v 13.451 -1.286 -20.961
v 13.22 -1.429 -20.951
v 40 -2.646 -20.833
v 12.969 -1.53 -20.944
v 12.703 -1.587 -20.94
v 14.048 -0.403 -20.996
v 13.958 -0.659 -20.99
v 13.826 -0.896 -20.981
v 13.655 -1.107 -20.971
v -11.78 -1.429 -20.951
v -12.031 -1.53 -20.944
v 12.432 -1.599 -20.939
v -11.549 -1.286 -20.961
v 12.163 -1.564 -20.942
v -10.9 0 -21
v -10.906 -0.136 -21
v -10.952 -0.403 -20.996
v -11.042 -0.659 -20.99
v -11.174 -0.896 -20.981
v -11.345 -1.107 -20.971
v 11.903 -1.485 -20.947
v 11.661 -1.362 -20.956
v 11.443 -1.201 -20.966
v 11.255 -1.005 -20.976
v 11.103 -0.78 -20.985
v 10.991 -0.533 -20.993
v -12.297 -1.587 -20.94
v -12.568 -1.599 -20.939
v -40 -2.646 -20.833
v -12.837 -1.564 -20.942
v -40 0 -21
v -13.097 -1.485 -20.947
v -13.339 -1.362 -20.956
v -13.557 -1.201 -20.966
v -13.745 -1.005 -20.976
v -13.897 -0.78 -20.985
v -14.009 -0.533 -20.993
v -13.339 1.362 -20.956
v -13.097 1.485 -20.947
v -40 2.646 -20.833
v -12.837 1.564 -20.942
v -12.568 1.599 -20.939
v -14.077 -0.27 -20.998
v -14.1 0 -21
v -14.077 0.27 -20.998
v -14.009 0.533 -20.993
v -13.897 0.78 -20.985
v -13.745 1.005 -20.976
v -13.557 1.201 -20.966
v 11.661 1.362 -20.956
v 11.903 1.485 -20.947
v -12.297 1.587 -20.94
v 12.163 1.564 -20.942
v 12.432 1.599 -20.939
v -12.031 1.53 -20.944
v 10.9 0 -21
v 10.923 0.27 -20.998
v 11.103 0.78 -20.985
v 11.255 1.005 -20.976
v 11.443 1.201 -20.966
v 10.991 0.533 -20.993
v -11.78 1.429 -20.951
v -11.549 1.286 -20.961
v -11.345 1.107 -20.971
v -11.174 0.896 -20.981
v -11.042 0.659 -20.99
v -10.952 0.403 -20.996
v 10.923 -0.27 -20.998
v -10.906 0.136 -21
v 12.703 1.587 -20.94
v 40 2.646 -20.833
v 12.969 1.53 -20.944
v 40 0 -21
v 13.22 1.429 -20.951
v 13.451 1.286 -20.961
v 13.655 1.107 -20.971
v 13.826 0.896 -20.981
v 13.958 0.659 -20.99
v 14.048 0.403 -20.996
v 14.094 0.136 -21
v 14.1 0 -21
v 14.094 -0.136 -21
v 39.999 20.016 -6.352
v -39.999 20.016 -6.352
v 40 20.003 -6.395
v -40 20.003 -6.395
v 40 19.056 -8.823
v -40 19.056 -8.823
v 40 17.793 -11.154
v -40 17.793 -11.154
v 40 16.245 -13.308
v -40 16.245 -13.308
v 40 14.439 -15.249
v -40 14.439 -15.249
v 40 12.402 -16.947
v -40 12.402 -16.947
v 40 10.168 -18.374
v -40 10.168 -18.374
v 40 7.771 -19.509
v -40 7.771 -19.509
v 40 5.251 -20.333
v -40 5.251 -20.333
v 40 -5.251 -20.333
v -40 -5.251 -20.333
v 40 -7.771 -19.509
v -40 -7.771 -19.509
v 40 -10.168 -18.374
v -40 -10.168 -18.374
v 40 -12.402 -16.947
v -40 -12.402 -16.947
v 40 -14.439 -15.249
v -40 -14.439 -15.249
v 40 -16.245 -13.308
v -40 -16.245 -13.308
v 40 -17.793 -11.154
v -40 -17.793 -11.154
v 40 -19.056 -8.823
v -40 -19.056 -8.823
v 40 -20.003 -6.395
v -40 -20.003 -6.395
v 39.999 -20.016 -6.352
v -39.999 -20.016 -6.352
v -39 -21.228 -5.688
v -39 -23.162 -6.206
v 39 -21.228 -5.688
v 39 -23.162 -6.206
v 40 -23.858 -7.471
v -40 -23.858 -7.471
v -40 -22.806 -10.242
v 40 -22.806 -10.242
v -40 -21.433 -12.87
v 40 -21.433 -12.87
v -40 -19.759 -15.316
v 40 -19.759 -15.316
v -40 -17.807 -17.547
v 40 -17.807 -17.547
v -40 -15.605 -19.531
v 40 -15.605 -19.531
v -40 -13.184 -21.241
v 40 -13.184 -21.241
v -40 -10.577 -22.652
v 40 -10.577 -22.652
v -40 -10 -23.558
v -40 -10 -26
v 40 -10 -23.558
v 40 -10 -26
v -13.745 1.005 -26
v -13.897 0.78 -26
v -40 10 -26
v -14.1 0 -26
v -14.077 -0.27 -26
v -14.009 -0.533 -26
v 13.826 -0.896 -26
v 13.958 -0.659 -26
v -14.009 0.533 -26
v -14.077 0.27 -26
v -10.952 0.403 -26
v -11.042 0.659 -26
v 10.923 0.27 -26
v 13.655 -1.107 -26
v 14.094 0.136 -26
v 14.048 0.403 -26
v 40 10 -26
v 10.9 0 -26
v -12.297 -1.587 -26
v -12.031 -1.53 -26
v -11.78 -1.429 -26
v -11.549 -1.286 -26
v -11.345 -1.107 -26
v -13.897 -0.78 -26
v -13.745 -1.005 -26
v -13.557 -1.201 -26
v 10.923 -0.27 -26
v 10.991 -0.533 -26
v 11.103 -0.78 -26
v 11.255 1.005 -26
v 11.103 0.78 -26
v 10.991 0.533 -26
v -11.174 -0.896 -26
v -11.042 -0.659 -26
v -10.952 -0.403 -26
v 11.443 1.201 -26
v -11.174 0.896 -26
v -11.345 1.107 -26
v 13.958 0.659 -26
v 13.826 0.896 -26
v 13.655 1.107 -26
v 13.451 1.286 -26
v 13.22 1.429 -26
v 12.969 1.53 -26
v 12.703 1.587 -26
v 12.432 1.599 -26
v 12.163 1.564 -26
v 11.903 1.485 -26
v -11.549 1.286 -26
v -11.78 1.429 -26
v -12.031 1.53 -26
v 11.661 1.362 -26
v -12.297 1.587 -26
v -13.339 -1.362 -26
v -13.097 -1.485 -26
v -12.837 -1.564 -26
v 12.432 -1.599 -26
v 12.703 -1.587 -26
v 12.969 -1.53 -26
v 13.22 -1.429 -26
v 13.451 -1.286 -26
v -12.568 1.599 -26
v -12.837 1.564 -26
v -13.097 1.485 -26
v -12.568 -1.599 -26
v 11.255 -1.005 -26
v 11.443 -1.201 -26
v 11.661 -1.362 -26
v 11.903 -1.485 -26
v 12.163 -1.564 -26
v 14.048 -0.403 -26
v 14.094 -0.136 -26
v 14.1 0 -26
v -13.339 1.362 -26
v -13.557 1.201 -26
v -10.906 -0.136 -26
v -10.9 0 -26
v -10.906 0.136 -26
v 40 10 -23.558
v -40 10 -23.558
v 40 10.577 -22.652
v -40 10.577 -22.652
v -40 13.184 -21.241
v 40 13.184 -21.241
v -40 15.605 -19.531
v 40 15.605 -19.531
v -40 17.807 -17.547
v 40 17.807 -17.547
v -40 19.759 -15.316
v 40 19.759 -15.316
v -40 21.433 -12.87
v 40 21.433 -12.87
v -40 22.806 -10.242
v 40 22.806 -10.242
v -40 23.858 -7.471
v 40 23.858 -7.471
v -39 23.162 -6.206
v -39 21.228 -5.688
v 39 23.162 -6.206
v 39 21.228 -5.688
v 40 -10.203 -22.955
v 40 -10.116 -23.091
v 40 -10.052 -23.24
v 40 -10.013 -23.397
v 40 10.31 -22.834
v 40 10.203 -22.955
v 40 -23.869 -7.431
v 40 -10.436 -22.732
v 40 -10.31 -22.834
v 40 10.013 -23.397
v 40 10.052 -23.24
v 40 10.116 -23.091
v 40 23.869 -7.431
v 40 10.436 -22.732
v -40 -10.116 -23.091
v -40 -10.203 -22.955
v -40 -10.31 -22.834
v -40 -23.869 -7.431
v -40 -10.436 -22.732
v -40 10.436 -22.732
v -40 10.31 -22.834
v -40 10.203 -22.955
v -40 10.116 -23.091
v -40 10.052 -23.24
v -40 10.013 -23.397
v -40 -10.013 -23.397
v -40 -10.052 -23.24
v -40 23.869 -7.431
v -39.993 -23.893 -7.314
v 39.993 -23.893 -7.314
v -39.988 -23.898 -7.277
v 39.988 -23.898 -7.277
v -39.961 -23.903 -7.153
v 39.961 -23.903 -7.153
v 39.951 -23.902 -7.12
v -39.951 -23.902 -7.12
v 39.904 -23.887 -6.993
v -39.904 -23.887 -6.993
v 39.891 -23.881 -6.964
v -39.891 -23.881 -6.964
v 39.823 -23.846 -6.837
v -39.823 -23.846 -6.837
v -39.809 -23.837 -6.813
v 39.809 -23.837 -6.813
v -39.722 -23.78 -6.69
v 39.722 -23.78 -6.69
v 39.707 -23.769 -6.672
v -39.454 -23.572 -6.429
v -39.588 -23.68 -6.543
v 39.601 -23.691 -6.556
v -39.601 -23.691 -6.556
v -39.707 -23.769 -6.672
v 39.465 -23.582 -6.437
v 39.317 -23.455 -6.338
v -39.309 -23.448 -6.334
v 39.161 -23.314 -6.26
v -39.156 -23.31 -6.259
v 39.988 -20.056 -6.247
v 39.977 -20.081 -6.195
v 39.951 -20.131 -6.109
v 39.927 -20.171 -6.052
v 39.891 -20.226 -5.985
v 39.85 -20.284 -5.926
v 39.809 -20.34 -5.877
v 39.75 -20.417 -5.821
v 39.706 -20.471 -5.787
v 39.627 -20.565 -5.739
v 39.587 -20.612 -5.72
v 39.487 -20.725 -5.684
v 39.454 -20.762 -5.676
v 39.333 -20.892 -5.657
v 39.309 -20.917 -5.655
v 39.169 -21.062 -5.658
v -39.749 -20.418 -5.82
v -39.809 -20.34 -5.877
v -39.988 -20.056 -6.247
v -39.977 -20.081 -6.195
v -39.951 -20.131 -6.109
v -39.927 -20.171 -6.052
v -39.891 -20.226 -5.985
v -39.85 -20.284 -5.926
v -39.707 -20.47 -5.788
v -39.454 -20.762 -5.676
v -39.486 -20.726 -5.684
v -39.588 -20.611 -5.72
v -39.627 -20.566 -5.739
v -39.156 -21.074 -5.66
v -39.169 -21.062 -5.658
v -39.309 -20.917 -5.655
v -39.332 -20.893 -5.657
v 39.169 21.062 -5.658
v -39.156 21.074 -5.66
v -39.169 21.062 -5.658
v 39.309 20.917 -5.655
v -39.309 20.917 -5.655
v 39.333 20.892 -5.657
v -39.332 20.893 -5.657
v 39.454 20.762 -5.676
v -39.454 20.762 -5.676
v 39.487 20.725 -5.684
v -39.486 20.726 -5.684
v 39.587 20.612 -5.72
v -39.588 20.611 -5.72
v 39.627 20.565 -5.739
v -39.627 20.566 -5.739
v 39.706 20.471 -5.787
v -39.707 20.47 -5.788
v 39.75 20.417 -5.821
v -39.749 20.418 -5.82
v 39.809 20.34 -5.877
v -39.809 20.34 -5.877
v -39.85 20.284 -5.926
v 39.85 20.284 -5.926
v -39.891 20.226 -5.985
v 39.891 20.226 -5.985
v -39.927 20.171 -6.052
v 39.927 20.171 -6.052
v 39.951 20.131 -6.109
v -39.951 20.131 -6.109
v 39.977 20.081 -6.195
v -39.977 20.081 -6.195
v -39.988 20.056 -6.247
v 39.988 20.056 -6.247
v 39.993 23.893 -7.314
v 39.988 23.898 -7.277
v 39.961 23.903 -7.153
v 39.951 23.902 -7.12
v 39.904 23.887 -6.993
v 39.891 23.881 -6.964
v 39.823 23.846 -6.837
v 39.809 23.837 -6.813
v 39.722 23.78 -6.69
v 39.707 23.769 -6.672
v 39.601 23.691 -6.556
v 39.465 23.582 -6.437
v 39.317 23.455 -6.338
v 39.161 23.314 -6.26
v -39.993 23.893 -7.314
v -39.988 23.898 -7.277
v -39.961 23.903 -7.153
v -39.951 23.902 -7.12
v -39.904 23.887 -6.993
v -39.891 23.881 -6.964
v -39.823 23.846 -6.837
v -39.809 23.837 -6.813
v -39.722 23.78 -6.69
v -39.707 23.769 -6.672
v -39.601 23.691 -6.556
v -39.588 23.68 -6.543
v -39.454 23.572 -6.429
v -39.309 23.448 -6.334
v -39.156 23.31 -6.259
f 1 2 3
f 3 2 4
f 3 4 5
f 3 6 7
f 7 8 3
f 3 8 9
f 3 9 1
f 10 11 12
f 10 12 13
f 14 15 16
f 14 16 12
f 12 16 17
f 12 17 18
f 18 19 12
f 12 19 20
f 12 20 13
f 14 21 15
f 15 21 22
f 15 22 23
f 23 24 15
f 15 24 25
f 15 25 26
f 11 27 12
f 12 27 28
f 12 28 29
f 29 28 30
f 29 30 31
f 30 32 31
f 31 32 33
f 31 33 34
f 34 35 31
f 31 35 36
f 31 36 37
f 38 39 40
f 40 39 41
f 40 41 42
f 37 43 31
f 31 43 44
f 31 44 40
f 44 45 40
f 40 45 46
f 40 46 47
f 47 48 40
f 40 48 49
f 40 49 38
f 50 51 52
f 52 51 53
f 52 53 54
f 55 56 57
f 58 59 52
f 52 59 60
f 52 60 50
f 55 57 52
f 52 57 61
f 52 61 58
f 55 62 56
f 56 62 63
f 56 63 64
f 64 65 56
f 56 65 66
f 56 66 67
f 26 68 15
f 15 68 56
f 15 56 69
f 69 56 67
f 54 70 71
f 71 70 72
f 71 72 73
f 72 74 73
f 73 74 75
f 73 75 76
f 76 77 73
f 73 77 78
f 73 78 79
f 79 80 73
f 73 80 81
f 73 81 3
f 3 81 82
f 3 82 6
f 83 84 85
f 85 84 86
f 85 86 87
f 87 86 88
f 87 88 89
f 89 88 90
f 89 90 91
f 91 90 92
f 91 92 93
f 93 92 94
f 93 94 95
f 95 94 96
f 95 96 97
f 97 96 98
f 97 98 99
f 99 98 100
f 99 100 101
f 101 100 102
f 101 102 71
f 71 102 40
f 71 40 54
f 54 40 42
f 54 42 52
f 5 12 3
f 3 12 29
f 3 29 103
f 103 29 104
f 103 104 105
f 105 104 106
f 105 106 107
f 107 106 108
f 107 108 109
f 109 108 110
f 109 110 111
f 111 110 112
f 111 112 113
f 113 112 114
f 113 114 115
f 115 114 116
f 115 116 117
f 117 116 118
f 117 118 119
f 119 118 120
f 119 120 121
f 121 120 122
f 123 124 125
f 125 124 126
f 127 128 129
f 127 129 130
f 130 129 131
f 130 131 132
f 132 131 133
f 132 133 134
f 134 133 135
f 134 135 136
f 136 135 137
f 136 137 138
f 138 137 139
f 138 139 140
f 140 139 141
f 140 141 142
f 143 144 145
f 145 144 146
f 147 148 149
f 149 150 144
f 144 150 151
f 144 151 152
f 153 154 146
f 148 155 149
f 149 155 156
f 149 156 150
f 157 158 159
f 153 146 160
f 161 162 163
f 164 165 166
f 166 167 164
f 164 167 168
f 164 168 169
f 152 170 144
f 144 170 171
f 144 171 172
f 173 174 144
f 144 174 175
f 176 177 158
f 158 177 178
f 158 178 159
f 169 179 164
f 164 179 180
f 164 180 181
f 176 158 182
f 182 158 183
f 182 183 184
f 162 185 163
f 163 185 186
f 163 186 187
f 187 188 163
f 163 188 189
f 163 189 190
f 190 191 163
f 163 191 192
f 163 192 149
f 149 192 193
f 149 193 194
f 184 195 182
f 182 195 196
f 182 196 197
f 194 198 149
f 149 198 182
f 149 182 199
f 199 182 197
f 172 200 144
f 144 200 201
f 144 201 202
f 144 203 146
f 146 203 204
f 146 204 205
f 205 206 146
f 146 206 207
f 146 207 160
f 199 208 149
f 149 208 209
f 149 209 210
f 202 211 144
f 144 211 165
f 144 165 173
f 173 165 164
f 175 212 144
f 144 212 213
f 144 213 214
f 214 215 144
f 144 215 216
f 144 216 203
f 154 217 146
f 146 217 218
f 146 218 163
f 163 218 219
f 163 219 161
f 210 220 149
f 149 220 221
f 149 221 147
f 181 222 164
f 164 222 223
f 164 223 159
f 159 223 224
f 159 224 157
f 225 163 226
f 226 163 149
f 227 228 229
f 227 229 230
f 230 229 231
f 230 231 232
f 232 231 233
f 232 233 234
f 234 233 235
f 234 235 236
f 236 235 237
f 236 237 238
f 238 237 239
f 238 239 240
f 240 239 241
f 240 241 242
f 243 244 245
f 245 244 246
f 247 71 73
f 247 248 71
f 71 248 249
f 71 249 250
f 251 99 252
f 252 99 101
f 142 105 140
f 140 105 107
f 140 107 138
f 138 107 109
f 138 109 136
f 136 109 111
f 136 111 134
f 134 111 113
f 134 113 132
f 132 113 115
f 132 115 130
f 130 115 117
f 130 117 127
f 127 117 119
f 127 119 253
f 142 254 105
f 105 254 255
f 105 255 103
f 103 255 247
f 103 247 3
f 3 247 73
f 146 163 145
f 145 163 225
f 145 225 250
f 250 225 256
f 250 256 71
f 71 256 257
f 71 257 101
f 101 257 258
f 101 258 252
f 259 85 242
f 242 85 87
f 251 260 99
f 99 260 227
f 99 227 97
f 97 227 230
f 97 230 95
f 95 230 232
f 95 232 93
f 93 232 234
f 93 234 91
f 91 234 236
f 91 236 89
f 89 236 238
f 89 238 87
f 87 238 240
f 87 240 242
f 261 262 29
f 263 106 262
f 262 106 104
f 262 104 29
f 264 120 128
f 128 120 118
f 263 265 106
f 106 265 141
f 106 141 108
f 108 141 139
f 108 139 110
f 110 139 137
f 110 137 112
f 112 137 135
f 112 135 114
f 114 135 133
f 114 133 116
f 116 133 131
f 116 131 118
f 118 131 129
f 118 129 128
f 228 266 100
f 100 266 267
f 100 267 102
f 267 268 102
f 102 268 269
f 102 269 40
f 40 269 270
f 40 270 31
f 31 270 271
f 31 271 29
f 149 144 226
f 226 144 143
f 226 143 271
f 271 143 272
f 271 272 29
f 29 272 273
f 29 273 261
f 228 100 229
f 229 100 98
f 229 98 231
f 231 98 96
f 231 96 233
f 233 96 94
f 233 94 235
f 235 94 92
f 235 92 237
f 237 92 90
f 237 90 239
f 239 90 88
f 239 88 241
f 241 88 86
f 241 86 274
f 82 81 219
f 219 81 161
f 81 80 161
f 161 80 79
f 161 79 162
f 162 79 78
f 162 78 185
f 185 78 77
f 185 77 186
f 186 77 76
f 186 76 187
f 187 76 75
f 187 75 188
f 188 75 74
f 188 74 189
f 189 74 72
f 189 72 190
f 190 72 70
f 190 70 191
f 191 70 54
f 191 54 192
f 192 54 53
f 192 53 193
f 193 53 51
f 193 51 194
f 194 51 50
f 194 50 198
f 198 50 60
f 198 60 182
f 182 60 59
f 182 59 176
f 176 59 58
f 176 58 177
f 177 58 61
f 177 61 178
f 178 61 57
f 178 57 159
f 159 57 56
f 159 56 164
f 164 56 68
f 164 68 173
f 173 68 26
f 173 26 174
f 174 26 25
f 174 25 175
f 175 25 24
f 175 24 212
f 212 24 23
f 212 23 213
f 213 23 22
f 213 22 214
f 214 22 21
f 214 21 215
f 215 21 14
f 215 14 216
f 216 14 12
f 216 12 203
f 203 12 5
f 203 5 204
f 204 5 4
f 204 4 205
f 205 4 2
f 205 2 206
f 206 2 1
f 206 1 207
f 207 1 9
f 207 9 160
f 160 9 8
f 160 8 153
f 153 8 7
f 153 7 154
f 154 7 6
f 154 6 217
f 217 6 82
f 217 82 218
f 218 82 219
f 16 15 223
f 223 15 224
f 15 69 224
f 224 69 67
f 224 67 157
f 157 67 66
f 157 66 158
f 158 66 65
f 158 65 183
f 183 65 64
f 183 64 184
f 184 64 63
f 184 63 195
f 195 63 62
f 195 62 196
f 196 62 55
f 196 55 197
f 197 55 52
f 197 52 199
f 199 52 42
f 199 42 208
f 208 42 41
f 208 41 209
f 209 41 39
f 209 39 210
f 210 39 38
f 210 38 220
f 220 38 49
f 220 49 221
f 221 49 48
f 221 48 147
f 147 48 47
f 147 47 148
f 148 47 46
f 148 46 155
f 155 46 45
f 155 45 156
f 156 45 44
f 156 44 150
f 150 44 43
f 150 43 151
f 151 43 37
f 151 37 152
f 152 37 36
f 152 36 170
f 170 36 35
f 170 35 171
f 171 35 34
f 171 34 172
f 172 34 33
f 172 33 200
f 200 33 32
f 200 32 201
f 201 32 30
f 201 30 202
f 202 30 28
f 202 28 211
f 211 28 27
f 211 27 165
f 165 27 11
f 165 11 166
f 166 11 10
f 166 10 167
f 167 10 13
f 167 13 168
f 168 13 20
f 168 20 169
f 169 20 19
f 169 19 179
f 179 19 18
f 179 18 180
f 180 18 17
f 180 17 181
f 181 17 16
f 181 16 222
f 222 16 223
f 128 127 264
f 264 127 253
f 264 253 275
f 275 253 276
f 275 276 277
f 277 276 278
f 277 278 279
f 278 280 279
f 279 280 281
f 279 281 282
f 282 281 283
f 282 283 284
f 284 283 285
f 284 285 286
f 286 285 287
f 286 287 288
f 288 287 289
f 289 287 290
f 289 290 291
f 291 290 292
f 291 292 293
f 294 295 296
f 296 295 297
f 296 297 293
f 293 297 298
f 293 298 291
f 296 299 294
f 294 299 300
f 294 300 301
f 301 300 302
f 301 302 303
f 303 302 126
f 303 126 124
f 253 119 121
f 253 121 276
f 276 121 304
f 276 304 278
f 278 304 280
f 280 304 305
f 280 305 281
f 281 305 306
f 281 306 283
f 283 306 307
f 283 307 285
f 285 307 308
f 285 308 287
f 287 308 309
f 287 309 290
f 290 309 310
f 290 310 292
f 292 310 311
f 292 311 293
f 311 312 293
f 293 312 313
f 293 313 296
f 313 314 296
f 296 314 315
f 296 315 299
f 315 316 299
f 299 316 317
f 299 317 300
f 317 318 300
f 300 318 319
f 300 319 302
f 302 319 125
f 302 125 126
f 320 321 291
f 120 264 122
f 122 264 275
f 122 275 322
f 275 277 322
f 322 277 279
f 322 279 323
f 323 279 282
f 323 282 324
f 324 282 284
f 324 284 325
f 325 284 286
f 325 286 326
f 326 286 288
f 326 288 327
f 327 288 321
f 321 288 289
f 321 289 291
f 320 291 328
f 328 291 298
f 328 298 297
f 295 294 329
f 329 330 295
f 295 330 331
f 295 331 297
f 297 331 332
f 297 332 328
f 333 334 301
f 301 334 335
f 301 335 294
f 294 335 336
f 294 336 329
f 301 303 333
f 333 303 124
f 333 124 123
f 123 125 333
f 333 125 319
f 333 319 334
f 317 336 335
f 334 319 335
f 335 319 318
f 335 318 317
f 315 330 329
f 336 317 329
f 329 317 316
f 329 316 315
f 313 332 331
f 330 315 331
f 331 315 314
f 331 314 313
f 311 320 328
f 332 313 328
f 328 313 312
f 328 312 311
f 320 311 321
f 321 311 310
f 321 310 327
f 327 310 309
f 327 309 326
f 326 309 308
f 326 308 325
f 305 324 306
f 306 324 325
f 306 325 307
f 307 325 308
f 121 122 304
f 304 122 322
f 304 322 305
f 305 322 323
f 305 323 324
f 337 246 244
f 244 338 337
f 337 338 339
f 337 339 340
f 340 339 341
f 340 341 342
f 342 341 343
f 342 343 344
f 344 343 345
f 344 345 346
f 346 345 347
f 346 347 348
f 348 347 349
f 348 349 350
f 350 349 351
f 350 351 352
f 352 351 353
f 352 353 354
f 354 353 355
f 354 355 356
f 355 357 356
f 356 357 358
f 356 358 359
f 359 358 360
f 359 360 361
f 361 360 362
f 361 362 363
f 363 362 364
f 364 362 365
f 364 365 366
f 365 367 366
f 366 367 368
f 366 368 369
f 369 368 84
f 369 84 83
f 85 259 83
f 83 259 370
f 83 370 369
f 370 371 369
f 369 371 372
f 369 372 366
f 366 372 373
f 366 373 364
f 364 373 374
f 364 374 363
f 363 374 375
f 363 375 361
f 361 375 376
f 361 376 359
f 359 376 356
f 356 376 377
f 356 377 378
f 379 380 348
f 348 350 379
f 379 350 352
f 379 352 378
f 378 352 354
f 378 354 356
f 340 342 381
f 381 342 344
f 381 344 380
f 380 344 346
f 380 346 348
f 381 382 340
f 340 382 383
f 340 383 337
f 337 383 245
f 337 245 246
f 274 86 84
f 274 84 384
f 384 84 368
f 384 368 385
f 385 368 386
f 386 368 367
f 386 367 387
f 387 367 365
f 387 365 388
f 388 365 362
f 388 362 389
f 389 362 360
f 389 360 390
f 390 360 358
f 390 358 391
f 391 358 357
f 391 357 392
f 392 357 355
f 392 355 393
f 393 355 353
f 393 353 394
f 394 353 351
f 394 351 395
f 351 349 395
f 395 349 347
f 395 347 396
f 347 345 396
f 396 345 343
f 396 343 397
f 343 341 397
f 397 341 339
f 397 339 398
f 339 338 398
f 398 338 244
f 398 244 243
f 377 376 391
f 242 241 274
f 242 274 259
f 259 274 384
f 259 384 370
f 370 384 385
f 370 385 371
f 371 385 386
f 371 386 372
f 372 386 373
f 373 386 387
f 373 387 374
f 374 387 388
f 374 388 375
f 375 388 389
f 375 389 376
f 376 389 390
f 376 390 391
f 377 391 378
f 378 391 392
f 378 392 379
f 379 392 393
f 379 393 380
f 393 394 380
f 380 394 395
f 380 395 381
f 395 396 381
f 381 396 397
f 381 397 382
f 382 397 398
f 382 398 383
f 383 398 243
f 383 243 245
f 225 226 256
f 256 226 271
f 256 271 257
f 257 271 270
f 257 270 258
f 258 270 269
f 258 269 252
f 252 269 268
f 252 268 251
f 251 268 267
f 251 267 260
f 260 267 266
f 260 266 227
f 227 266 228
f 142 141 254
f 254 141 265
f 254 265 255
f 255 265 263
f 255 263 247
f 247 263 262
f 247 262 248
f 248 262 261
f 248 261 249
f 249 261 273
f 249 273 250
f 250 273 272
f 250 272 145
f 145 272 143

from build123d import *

# Parameters (mm, degrees)
BOSS_EXTRUDE1_DEPTH     = 40
CUT_EXTRUDE1_DEPTH      = 52.04942644
CUT_EXTRUDE1_DEPTH_BACK = 52.04942644
SKETCH2_R               = 1.6
FILLET1_R               = 1


with BuildPart() as part:
    # Sketch1 → Boss-Extrude1 (new, symmetric)
    with BuildSketch(Plane.YZ):
        with BuildLine():
            Line((20.284442352, -5.435199947), (24.148145657, -6.470476128))
            ThreePointArc((24.148145657, -6.470476128), (18.950253605, -16.306069064), (10, -22.912878475))
            Line((10, -22.912878475), (10, -26))
            Line((10, -26), (-10, -26))
            Line((-10, -26), (-10, -22.912878475))
            ThreePointArc((-10, -22.912878475), (-18.950253605, -16.306069064), (-24.148145657, -6.470476128))
            Line((-24.148145657, -6.470476128), (-20.284442352, -5.435199947))
            ThreePointArc((-20.284442352, -5.435199947), (0, -21), (20.284442352, -5.435199947))
        make_face()
    extrude(amount=BOSS_EXTRUDE1_DEPTH, both=True)

    # Sketch2 → Cut-Extrude1 (cut, two sides: drawn at the far end of the back side and taken through both)
    with BuildSketch(Plane(origin=(0, 0, -26), x_dir=(-1, 0, 0), z_dir=(0, 0, -1)).offset(-CUT_EXTRUDE1_DEPTH_BACK)):
        with Locations((12.5, 0)):
            Circle(SKETCH2_R)
        with Locations((-12.5, 0)):
            Circle(SKETCH2_R)
    extrude(amount=CUT_EXTRUDE1_DEPTH + CUT_EXTRUDE1_DEPTH_BACK, mode=Mode.SUBTRACT)

    # Fillet1
    fillet1_edges = [part.edges().sort_by_distance(p)[0] for p in [
        (-40, -22.216294005, -5.952838037),
        (0, 20.284442352, -5.435199947),
        (0, 24.148145657, -6.470476128),
        (0, 10, -22.912878475),
        (0, -10, -22.912878475),
        (0, -24.148145657, -6.470476128),
        (0, -20.284442352, -5.435199947),
        (40, 22.216294005, -5.952838037),
        (-40, 22.216294005, -5.952838037),
        (40, -22.216294005, -5.952838037),
    ]]
    fillet(fillet1_edges, radius=FILLET1_R)


solid = part.part
